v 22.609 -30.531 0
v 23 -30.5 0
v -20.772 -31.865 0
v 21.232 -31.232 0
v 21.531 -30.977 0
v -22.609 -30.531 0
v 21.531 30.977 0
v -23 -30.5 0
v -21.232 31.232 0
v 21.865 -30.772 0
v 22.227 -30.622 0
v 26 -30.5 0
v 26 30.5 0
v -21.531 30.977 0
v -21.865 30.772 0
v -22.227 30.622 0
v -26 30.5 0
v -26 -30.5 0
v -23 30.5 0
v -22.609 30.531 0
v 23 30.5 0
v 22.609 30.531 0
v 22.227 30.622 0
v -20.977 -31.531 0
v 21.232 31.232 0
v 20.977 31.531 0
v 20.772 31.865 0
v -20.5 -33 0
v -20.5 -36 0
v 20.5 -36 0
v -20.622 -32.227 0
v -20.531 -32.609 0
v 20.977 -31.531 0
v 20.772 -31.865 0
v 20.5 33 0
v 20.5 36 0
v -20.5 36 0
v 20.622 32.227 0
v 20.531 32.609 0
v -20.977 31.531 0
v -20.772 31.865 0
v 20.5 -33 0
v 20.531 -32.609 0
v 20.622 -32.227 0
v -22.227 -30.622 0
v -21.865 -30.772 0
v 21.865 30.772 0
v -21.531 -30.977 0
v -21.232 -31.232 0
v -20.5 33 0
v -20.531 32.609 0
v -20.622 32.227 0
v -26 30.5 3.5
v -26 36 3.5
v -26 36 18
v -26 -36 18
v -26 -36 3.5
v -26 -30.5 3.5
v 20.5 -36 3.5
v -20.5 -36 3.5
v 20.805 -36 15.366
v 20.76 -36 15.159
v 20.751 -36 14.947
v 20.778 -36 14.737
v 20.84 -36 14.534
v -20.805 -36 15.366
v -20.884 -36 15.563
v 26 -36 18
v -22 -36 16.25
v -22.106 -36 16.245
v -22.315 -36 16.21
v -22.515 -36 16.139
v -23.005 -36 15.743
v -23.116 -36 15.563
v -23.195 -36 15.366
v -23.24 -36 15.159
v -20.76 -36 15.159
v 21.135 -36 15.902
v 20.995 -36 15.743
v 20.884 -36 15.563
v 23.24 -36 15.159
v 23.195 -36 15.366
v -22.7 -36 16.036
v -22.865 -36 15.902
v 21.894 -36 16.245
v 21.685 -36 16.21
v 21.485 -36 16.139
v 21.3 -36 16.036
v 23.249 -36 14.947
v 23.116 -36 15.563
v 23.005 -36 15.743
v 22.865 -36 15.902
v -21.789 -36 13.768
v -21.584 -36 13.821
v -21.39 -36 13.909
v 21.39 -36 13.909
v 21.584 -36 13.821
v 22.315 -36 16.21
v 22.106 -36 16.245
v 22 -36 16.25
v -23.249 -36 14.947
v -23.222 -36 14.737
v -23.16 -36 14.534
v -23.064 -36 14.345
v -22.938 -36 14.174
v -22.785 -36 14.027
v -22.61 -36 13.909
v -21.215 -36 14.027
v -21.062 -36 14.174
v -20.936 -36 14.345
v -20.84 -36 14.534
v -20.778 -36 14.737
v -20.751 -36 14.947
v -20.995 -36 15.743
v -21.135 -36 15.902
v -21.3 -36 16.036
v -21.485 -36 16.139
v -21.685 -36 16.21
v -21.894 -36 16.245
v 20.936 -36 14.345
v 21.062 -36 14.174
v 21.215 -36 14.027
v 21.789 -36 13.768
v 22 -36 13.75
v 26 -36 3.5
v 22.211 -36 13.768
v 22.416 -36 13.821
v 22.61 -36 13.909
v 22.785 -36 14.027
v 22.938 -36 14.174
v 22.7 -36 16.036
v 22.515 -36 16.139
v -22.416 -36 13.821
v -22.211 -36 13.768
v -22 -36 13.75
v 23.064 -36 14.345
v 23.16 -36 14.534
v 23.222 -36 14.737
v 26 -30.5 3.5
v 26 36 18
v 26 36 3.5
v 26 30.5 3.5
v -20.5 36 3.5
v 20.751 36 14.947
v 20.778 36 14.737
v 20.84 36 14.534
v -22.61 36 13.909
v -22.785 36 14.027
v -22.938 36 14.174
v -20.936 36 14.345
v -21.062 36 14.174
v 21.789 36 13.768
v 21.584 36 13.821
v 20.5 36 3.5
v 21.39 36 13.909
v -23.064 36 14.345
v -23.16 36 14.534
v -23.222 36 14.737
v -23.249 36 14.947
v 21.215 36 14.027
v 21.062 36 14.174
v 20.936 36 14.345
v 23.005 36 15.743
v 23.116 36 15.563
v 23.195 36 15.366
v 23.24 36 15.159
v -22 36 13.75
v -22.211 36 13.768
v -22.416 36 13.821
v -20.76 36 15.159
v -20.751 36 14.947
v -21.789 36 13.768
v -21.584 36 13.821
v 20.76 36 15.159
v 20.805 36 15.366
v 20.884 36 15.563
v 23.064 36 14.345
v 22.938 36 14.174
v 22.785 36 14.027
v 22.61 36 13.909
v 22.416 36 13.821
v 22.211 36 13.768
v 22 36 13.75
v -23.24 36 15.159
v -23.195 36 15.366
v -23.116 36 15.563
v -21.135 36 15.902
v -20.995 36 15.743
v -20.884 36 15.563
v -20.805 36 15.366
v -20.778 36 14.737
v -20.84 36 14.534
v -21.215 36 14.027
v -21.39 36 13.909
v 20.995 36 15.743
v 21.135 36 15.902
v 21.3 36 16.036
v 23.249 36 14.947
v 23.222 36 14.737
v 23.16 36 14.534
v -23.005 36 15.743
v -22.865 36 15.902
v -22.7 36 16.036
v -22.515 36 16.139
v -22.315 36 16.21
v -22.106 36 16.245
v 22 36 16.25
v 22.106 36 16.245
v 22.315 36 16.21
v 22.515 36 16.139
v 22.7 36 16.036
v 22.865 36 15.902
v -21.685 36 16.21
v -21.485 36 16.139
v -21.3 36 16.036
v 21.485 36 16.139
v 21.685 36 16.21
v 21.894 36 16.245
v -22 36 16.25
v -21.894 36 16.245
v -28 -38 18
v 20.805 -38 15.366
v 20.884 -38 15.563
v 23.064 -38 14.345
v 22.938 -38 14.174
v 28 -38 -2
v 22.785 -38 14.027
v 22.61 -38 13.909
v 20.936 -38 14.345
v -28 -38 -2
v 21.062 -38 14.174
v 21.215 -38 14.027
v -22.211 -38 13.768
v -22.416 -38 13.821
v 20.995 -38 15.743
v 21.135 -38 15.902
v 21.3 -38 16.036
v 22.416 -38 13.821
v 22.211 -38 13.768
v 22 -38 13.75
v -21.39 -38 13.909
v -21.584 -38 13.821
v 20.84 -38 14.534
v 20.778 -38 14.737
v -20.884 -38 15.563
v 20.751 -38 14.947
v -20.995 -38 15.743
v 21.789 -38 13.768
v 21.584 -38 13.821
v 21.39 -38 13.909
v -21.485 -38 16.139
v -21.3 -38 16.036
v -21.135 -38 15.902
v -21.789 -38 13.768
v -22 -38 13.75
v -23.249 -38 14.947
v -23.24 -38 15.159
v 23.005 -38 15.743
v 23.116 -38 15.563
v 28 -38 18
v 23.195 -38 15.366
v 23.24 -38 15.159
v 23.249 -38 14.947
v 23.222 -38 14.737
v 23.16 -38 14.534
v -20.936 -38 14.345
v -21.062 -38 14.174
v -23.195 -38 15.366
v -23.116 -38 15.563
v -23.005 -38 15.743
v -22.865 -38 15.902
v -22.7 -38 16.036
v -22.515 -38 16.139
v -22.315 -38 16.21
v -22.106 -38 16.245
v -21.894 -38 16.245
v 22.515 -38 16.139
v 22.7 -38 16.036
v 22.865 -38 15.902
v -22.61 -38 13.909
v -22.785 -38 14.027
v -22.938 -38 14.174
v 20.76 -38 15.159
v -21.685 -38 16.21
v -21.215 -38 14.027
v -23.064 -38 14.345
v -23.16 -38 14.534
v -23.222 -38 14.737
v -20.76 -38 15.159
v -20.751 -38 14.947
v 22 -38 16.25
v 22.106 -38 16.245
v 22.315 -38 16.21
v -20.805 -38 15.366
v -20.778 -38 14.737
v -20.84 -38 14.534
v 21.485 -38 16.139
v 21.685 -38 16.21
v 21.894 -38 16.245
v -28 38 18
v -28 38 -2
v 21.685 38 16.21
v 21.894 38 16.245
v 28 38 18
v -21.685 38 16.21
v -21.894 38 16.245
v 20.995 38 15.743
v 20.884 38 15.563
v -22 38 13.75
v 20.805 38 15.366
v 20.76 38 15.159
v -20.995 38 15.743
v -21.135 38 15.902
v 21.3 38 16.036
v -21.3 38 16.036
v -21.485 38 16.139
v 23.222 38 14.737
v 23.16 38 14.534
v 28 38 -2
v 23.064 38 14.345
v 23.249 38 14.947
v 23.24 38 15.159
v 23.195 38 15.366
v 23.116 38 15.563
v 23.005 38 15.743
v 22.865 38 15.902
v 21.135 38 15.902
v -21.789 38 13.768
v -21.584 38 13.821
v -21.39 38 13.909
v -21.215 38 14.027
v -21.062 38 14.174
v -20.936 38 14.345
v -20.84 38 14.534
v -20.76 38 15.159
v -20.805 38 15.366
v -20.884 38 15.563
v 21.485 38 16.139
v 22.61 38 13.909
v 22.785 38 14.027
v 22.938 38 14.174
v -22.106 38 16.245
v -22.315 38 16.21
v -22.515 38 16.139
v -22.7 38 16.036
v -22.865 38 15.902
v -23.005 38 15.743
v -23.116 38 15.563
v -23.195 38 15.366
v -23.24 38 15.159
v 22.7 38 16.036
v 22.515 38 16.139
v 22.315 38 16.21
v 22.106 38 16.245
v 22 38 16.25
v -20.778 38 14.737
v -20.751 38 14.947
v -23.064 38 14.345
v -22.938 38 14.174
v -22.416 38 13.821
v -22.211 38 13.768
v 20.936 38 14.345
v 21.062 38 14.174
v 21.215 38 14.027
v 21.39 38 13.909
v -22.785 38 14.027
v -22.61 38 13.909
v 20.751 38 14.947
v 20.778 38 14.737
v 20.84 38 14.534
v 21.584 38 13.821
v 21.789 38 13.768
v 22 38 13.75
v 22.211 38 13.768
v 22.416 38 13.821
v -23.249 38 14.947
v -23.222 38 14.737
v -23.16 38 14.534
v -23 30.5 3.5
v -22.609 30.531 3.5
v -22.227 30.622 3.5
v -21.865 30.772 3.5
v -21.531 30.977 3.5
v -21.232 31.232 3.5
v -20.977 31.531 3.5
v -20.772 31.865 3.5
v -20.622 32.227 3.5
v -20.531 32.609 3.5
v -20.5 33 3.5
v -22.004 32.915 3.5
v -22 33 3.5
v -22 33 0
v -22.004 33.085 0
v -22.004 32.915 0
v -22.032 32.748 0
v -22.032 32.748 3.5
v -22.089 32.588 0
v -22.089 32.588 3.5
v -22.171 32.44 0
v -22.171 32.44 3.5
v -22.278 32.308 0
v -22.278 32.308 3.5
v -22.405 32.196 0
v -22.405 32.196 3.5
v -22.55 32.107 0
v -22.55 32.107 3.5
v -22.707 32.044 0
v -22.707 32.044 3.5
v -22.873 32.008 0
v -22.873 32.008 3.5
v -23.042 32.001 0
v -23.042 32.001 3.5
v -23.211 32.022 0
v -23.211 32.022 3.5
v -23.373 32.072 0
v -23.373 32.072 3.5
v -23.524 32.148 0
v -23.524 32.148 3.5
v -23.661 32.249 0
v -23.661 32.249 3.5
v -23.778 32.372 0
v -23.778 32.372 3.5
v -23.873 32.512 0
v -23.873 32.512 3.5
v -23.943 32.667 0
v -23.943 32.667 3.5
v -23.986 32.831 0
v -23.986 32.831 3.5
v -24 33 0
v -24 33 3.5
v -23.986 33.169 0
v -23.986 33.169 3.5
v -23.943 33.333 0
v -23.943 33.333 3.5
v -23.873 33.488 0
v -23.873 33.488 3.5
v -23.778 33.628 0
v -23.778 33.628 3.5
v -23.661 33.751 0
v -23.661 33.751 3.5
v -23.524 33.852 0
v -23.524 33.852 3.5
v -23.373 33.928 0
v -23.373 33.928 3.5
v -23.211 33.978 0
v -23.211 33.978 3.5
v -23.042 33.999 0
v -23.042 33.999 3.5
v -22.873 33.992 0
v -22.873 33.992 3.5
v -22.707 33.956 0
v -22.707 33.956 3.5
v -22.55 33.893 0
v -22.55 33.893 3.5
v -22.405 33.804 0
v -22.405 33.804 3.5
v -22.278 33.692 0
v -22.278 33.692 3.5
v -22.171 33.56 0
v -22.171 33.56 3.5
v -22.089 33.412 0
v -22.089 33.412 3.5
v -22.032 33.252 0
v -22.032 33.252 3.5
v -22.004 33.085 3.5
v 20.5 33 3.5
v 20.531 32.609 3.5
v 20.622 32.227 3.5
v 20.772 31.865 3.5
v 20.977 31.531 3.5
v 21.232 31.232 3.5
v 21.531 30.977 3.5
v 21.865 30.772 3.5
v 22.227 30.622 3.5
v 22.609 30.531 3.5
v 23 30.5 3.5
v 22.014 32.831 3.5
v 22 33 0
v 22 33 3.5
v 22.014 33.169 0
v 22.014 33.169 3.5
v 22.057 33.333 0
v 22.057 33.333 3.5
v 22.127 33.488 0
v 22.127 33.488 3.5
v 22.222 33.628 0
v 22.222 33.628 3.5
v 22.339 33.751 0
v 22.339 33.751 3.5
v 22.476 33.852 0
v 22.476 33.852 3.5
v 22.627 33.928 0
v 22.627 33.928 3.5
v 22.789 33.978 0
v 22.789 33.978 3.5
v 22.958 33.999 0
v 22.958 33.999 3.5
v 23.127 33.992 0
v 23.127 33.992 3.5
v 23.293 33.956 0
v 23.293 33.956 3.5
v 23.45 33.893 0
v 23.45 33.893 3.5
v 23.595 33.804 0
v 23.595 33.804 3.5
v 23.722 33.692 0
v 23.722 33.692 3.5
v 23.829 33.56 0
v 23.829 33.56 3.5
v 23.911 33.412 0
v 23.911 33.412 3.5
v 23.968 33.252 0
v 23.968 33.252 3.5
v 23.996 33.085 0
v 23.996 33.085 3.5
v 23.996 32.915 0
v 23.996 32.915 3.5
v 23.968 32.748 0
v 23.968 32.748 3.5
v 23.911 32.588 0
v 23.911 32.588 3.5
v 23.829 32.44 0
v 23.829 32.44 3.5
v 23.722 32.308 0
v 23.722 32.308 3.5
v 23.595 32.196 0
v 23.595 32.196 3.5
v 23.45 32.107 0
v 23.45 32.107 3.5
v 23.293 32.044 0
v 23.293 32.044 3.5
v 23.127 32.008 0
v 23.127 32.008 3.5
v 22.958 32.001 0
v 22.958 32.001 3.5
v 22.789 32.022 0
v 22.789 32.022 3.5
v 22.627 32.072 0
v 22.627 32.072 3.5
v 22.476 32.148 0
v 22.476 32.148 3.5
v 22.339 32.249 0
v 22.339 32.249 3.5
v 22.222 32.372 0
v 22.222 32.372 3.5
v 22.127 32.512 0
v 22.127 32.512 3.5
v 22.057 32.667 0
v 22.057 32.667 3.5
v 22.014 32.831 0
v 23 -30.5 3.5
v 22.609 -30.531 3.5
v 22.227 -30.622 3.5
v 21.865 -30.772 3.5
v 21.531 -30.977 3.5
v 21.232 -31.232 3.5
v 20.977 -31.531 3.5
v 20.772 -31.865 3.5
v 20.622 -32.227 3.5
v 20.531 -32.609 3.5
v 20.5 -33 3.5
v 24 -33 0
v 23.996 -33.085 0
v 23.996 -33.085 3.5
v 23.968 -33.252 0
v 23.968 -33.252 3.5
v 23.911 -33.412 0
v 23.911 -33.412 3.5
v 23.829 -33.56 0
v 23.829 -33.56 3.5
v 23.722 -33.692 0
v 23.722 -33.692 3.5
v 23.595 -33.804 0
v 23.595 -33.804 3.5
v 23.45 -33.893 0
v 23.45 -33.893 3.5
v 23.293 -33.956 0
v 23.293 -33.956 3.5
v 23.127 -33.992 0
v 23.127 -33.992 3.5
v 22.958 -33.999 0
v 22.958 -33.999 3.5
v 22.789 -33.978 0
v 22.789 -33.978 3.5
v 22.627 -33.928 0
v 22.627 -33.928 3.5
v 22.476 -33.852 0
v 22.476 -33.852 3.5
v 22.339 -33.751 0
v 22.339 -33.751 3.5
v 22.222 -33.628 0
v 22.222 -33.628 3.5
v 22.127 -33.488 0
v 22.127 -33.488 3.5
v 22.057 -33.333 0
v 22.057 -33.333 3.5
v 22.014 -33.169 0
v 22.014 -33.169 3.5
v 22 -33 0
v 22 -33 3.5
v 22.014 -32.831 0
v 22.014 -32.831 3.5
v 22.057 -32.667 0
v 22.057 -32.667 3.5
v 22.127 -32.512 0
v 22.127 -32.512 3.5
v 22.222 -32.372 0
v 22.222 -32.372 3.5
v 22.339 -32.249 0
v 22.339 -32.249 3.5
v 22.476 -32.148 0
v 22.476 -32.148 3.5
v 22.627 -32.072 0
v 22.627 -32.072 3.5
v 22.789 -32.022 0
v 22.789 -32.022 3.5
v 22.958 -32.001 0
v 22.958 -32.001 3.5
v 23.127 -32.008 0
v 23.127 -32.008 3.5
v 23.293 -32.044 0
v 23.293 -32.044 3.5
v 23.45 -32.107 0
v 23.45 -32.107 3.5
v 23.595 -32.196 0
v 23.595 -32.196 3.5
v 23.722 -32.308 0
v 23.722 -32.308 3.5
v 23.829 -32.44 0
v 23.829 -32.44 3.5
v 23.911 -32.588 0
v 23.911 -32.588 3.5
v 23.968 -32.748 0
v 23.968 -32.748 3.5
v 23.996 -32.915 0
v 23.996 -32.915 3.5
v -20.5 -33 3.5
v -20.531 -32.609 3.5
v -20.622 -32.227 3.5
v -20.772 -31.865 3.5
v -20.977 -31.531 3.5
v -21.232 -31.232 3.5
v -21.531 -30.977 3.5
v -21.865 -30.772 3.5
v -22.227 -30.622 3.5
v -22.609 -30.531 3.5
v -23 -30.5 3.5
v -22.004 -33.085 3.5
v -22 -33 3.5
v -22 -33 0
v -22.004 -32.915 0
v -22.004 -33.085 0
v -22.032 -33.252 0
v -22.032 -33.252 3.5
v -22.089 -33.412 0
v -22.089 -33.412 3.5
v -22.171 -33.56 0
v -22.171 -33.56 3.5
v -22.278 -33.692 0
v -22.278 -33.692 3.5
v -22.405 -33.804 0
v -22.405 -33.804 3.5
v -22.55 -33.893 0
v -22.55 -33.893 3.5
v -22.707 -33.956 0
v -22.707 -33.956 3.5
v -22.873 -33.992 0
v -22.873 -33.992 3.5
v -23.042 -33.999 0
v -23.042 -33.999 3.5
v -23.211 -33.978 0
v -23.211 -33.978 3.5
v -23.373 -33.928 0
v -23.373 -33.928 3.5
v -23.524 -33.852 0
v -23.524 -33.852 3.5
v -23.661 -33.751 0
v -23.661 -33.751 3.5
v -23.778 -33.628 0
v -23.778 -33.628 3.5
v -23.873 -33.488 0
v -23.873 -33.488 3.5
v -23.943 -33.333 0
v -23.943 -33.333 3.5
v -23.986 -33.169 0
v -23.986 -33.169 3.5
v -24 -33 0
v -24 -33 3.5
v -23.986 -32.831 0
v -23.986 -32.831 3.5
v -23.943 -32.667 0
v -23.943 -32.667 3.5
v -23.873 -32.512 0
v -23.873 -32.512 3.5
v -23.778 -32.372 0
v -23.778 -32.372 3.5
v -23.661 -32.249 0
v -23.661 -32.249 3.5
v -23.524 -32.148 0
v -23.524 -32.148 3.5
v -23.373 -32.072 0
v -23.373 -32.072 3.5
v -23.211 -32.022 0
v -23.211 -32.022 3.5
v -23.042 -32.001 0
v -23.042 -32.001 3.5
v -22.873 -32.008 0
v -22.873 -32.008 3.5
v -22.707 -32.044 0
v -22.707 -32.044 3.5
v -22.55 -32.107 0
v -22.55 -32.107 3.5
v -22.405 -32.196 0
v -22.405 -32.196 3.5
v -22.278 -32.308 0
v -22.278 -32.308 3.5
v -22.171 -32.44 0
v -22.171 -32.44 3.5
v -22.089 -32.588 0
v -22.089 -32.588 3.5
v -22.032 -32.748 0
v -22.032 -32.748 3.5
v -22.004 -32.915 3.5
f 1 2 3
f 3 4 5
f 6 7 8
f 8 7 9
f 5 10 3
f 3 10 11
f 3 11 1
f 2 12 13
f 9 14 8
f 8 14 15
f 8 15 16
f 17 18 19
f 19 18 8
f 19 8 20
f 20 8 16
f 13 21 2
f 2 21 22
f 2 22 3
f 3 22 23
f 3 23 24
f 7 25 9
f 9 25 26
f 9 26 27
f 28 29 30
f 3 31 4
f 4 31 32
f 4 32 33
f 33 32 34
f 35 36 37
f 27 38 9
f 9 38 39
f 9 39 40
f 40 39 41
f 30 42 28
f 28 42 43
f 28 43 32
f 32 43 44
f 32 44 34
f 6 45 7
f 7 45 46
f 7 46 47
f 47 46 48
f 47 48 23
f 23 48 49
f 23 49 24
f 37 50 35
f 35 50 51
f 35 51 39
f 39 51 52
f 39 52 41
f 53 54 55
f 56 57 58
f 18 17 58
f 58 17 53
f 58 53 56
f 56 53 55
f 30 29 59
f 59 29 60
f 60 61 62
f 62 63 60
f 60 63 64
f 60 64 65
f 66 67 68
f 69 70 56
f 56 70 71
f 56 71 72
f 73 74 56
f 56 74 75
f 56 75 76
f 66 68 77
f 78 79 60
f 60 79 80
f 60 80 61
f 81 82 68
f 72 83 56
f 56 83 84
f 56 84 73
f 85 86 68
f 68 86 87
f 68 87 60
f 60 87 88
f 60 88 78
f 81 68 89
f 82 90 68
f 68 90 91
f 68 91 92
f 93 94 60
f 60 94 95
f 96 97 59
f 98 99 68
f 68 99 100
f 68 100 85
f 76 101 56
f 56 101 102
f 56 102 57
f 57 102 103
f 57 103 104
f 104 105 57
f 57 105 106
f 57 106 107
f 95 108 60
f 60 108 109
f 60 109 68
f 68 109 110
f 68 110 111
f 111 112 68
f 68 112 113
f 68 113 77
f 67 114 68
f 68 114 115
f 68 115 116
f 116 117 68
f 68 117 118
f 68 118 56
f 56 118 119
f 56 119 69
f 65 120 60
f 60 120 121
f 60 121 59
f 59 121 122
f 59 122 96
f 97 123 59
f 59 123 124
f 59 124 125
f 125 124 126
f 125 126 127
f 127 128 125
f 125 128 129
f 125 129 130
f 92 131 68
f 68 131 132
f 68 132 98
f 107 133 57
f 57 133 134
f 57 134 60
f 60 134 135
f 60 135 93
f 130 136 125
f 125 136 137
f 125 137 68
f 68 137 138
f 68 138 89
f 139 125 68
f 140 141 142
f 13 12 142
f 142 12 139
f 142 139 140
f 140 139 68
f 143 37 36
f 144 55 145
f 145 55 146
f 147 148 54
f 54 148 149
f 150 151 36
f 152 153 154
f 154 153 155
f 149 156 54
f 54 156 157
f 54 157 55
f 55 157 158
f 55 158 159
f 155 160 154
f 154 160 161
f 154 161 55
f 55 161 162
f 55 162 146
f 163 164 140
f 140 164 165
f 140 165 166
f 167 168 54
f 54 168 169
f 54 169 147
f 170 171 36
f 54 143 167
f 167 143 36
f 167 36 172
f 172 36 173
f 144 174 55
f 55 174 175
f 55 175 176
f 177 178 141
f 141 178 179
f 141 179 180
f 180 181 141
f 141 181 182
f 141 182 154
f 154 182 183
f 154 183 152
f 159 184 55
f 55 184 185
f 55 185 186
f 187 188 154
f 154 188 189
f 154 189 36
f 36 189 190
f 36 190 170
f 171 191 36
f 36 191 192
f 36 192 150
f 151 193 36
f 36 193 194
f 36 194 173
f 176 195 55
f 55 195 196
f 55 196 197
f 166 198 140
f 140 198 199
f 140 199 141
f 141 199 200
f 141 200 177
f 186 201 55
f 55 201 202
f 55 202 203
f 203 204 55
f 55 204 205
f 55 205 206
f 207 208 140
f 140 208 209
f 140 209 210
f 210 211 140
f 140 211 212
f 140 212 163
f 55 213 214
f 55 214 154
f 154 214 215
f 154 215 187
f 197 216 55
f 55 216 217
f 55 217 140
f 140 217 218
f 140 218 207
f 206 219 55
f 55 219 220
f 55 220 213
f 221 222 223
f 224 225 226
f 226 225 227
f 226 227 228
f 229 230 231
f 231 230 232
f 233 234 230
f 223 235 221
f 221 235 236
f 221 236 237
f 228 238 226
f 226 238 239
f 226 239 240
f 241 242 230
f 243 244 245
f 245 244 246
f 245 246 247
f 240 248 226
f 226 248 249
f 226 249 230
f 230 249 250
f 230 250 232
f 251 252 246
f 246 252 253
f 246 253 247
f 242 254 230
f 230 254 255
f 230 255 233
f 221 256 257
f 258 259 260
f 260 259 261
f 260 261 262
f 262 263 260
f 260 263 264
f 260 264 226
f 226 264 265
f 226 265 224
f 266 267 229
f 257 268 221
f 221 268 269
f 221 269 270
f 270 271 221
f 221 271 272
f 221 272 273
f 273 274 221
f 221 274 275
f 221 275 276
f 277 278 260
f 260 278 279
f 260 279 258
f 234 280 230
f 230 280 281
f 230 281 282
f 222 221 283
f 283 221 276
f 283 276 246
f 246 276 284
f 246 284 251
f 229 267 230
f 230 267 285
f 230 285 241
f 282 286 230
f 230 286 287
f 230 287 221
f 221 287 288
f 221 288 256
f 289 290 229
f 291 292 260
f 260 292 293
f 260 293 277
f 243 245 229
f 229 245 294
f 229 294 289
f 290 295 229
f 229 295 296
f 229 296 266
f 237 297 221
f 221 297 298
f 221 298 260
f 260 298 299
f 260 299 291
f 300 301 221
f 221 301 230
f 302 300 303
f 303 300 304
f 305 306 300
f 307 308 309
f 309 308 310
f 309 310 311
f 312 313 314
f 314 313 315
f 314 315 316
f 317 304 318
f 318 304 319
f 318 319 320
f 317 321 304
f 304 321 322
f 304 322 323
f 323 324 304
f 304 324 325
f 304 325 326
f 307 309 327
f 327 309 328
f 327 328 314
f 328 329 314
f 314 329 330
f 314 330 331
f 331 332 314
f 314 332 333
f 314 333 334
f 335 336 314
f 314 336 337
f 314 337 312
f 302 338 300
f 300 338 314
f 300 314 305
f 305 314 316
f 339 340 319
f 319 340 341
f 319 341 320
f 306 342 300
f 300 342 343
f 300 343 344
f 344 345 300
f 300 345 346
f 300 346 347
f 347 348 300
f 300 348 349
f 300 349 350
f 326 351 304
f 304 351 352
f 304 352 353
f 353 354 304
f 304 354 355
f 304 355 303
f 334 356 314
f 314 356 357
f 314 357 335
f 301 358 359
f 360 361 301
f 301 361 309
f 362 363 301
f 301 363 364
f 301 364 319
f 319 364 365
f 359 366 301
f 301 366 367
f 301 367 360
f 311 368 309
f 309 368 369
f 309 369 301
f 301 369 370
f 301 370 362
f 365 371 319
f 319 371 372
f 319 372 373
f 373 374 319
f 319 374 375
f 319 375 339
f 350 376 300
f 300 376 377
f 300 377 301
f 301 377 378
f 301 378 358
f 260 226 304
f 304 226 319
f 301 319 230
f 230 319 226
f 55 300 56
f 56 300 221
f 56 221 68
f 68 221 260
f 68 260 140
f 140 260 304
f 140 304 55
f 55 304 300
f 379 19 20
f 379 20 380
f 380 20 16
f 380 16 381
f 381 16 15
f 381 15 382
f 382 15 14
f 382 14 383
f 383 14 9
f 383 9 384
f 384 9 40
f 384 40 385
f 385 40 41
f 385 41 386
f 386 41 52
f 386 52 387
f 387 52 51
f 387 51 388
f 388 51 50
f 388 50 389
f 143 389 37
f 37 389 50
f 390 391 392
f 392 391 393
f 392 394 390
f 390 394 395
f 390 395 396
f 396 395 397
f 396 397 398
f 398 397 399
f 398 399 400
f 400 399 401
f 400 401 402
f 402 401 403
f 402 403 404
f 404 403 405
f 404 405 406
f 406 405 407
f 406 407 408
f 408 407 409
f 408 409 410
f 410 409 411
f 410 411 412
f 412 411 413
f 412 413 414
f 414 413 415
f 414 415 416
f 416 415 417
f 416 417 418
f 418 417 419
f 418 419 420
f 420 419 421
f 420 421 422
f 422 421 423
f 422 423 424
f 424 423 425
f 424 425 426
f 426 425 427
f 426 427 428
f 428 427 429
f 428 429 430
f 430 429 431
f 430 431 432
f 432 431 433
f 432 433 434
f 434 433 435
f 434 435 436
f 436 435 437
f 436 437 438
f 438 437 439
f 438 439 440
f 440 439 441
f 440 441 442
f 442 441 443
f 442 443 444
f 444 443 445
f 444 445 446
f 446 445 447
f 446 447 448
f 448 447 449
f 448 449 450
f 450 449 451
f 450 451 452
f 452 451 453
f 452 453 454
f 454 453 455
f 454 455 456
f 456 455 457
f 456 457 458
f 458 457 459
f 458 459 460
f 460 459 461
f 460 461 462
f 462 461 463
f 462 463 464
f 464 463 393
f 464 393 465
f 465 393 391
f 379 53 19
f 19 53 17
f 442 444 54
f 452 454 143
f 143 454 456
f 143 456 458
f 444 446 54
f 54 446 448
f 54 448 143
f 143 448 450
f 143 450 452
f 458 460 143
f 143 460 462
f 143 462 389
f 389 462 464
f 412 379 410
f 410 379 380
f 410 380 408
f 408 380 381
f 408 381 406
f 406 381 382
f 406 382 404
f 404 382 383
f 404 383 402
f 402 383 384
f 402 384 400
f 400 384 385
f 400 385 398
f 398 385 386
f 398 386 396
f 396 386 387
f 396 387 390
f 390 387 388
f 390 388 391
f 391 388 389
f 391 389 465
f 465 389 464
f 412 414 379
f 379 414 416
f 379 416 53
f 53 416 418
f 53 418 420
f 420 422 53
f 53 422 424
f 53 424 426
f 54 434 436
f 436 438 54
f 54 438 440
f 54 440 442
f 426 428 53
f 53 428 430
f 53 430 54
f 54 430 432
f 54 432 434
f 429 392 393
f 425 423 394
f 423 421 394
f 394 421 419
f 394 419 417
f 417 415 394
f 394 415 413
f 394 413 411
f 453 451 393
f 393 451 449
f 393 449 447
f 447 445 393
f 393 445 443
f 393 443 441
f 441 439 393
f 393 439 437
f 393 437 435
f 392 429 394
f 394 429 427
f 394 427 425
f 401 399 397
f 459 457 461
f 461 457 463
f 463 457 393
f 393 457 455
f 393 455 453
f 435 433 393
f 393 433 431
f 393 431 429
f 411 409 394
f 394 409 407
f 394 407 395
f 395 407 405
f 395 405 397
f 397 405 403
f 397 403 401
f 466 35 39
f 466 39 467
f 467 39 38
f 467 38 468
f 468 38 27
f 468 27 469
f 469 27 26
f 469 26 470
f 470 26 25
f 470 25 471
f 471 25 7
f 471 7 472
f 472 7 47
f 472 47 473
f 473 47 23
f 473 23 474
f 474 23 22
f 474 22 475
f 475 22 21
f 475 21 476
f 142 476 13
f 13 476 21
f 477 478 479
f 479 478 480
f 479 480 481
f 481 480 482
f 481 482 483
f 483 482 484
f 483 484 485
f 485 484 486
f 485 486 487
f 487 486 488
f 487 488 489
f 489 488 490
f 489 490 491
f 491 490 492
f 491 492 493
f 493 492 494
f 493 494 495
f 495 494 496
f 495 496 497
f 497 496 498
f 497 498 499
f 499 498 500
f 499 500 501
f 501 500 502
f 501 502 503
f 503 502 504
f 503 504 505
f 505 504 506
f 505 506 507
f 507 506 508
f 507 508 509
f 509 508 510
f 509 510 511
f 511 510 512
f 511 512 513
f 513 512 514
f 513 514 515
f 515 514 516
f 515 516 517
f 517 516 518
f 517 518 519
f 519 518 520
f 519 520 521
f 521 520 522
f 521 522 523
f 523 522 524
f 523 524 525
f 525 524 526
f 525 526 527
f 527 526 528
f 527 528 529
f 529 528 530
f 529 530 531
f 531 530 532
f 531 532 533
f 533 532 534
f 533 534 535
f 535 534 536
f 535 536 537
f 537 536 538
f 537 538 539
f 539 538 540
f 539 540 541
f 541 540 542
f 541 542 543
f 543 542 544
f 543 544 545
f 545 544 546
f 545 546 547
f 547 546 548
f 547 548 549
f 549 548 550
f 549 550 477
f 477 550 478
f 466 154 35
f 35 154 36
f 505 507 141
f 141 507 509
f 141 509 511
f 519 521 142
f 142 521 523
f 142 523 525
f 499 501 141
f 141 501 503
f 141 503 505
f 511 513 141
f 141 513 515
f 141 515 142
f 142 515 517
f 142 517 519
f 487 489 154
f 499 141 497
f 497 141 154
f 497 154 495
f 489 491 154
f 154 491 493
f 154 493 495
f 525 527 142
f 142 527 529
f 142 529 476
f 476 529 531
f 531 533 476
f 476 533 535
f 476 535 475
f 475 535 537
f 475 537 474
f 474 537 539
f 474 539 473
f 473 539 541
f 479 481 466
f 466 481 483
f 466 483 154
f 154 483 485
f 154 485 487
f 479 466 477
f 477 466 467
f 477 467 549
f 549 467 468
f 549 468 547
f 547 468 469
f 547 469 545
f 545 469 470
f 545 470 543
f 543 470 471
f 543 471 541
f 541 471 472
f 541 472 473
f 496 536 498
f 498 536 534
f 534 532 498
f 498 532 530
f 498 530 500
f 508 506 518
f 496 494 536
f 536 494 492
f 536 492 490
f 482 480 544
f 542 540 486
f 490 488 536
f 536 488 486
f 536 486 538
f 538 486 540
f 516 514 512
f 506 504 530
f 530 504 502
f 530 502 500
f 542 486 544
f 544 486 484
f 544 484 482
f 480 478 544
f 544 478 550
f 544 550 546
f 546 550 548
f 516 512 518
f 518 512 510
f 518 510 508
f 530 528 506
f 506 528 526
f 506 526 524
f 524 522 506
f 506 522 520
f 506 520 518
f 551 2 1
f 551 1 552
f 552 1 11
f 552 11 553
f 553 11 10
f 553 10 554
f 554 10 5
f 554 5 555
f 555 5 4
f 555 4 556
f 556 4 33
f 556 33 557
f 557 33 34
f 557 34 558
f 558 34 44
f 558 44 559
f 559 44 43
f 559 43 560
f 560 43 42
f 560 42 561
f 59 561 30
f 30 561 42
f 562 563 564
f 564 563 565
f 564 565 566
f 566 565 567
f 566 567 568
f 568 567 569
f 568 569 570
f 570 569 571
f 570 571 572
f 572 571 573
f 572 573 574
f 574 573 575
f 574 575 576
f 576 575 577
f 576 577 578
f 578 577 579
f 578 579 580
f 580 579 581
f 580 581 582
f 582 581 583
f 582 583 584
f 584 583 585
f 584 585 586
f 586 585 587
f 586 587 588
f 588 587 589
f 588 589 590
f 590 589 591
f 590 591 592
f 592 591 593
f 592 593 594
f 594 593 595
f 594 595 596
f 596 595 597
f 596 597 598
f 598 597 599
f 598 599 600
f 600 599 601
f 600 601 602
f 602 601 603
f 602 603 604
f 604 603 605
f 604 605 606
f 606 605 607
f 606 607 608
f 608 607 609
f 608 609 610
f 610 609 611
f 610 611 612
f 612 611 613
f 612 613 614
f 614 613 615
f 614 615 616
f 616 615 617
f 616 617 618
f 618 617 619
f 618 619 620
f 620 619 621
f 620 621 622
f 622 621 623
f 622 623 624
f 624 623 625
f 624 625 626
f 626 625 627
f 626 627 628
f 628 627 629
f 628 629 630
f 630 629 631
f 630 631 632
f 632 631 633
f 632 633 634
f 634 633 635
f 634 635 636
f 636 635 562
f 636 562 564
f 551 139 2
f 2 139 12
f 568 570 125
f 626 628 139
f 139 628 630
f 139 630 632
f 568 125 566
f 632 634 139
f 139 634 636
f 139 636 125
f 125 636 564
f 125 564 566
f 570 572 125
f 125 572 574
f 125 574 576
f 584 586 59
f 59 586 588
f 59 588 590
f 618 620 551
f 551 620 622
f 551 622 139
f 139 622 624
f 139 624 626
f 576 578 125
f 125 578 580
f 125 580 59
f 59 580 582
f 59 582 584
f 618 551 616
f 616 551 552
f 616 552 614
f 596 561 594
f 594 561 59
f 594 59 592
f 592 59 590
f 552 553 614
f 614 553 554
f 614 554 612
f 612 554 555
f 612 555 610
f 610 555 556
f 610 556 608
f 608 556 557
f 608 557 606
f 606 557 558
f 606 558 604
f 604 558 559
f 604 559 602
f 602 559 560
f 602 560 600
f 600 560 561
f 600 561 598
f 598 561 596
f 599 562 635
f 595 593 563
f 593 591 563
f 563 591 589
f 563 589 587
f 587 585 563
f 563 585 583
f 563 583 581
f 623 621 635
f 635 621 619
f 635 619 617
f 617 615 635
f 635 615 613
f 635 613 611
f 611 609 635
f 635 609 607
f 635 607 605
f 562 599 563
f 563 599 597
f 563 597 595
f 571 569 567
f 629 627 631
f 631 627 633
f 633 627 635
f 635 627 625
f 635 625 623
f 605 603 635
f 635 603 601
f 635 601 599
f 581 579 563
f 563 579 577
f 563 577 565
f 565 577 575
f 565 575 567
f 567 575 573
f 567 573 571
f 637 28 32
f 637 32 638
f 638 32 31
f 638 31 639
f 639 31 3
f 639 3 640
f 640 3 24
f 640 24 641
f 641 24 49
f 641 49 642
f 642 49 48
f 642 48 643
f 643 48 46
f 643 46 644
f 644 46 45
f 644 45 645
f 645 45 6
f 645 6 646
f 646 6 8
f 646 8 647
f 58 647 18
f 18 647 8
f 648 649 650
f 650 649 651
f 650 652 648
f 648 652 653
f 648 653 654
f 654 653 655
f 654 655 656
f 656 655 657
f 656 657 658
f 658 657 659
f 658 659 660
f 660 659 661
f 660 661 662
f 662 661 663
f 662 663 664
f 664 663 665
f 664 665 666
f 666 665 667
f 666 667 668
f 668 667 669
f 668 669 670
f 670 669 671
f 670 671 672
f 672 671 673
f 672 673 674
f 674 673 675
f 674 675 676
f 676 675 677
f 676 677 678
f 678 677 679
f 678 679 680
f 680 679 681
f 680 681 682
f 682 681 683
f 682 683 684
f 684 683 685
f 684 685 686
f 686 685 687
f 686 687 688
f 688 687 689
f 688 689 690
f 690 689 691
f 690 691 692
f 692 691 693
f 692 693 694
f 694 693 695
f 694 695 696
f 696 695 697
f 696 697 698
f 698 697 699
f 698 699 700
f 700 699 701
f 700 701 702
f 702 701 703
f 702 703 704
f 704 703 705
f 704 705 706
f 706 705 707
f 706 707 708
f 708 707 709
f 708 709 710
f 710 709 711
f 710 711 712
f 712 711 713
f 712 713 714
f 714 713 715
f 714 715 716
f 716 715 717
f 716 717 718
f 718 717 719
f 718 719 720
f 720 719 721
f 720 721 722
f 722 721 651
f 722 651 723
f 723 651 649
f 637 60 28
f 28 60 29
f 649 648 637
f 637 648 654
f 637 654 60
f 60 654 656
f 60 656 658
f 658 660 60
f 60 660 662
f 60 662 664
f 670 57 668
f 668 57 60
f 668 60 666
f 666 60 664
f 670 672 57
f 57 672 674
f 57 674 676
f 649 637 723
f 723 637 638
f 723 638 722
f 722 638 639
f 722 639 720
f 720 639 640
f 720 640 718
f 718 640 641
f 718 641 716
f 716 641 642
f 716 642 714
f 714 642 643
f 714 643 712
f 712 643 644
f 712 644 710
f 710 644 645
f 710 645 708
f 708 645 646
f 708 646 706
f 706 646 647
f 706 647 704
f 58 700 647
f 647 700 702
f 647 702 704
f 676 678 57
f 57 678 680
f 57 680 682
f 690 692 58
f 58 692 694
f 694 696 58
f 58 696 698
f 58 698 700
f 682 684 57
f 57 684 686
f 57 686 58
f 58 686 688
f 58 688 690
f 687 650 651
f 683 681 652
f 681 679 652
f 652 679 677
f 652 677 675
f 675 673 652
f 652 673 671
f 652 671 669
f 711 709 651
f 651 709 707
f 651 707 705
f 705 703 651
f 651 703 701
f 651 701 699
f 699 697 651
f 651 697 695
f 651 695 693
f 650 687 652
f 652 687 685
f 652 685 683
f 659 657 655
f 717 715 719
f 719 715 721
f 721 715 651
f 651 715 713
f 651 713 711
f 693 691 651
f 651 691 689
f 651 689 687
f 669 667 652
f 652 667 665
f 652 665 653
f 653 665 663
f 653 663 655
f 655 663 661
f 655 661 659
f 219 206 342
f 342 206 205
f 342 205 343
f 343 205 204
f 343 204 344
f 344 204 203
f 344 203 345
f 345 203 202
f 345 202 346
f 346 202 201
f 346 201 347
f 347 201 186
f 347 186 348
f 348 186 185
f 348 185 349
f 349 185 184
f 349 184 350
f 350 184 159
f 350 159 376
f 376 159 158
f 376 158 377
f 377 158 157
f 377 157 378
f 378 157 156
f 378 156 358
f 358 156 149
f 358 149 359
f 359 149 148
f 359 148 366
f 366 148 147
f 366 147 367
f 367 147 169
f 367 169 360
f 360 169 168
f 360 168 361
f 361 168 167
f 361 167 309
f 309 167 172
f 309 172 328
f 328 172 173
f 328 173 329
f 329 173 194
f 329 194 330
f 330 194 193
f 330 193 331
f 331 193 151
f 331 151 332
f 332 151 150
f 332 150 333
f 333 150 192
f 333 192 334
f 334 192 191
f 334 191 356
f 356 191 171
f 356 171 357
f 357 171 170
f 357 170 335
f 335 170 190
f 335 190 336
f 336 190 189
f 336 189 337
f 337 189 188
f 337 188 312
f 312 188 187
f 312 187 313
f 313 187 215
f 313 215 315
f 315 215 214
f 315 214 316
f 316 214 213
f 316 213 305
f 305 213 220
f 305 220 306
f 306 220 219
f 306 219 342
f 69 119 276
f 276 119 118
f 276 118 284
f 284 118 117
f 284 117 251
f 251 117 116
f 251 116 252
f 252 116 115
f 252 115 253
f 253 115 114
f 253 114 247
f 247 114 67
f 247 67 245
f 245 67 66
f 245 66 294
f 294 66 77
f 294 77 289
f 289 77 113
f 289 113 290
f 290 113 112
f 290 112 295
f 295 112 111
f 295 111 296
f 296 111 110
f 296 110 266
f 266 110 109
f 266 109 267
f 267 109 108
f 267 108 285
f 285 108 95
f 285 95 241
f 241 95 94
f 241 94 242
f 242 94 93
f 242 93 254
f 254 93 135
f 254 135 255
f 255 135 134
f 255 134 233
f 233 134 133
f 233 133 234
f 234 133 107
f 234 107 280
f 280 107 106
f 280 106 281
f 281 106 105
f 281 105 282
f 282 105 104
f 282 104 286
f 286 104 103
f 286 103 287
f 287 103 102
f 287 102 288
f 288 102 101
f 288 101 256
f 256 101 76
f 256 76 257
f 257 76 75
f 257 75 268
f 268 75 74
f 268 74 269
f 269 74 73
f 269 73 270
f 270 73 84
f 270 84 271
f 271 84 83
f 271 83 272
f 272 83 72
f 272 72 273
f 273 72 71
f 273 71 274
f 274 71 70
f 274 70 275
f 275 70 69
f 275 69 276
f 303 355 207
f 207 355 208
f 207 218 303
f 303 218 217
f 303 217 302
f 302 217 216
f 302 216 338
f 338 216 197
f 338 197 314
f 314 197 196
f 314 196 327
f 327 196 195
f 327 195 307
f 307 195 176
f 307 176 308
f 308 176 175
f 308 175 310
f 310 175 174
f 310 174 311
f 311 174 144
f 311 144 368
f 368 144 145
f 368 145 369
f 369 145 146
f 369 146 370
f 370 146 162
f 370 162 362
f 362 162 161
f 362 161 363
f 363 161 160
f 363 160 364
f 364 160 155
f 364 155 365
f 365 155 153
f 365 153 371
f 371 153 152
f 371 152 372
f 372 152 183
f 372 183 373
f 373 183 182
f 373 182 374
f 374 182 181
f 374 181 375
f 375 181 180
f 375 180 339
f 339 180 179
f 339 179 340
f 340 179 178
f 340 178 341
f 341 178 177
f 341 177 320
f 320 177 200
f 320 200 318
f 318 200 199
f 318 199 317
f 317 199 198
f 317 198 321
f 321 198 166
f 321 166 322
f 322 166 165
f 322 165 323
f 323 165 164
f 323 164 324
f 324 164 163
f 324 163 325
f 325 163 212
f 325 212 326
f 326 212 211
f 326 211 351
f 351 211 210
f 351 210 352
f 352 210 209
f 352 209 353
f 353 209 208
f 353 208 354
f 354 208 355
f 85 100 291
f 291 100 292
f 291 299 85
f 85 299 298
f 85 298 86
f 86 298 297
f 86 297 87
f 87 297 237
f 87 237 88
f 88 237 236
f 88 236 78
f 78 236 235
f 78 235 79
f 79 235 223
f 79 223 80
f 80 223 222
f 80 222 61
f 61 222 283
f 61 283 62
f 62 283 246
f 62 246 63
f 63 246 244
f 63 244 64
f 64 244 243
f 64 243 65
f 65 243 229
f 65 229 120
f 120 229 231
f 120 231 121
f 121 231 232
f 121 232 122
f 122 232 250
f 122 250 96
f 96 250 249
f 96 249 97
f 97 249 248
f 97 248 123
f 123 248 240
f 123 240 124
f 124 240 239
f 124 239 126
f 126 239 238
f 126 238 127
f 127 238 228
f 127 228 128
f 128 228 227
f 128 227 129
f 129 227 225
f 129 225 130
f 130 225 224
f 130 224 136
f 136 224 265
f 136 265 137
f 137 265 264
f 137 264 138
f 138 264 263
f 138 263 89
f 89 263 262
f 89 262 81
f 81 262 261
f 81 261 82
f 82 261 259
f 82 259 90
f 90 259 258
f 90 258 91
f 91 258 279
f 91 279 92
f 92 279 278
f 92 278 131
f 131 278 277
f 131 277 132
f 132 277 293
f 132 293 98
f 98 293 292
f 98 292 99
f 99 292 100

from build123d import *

# Parameters (mm, degrees)
ESBO_O1_W                 = 56
ESBO_O1_H                 = 76
RESSALTO_EXTRUS_O1_DEPTH  = 2
ESBO_O1_3_W               = 56
ESBO_O1_3_H               = 76
ESBO_O1_3_W_2             = 52
ESBO_O1_3_H_2             = 72
RESSALTO_EXTRUS_O2_DEPTH  = 18
ESBO_O2_R                 = 1
RESSALTO_EXTRUS_O3_DEPTH  = 3.5
ESPELHAR2_COPY_1_SKETCH_R = 1
ESPELHAR2_COPY_1_DEPTH    = 3.5
ESPELHAR2_COPY_2_SKETCH_R = 1
ESPELHAR2_COPY_2_DEPTH    = 3.5
ESBO_O3_R                 = 1.25
CORTE_EXTRUS_O1_DEPTH     = 83.969874051


with BuildPart() as part:
    # Esboço1 → Ressalto-extrusão1 (new body)
    with BuildSketch(Plane.XY):
        Rectangle(ESBO_O1_W, ESBO_O1_H)
    extrude(amount=-RESSALTO_EXTRUS_O1_DEPTH)

    # Esboço1<3> → Ressalto-extrusão2 (add)
    with BuildSketch(Plane.XY):
        Rectangle(ESBO_O1_3_W, ESBO_O1_3_H)
        Rectangle(ESBO_O1_3_W_2, ESBO_O1_3_H_2, mode=Mode.SUBTRACT)
    extrude(amount=RESSALTO_EXTRUS_O2_DEPTH)

    # Esboço2 → Ressalto-extrusão3 (add)
    with BuildSketch(Plane.XY):
        with BuildLine():
            Line((-26, 30.5), (-23, 30.5))
            ThreePointArc((-23, 30.5), (-21.232233047, 31.232233047), (-20.5, 33))
            Line((-20.5, 33), (-20.5, 36))
            Line((-20.5, 36), (-26, 36))
            Line((-26, 36), (-26, 30.5))
        make_face()
        with Locations((-23, 33)):
            Circle(ESBO_O2_R, mode=Mode.SUBTRACT)
    ressalto_extrus_o3 = extrude(amount=RESSALTO_EXTRUS_O3_DEPTH)

    # Espelhar1: Ressalto-extrusão3 across plane
    add(ressalto_extrus_o3.mirror(Plane(origin=(0, 0, 0), x_dir=(0, 0, 1), z_dir=(1, 0, 0))))

    # Espelhar2 copy 1 sketch → Espelhar2 copy 1 (add)
    with BuildSketch(Plane(origin=(0, 0, 0), x_dir=(-1, 0, 0), z_dir=(0, 0, 1))):
        with BuildLine():
            Line((-26, 30.5), (-23, 30.5))
            ThreePointArc((-23, 30.5), (-21.232233047, 31.232233047), (-20.5, 33))
            Line((-20.5, 33), (-20.5, 36))
            Line((-20.5, 36), (-26, 36))
            Line((-26, 36), (-26, 30.5))
        make_face()
        with Locations((-23, 33)):
            Circle(ESPELHAR2_COPY_1_SKETCH_R, mode=Mode.SUBTRACT)
    extrude(amount=ESPELHAR2_COPY_1_DEPTH)

    # Espelhar2 copy 2 sketch → Espelhar2 copy 2 (add)
    with BuildSketch(Plane.XY):
        with BuildLine():
            Line((-26, -30.5), (-23, -30.5))
            ThreePointArc((-23, -30.5), (-21.232233047, -31.232233047), (-20.5, -33))
            Line((-20.5, -33), (-20.5, -36))
            Line((-20.5, -36), (-26, -36))
            Line((-26, -36), (-26, -30.5))
        make_face()
        with Locations((-23, -33)):
            Circle(ESPELHAR2_COPY_2_SKETCH_R, mode=Mode.SUBTRACT)
    extrude(amount=ESPELHAR2_COPY_2_DEPTH)

    # Esboço3 → Corte-extrusão1 (cut, through all)
    with BuildSketch(Plane.XZ.offset(38)):
        with Locations((-22, 15)):
            Circle(ESBO_O3_R)
        with Locations((22, 15)):
            Circle(ESBO_O3_R)
    extrude(amount=-CORTE_EXTRUS_O1_DEPTH, mode=Mode.SUBTRACT)


solid = part.part
